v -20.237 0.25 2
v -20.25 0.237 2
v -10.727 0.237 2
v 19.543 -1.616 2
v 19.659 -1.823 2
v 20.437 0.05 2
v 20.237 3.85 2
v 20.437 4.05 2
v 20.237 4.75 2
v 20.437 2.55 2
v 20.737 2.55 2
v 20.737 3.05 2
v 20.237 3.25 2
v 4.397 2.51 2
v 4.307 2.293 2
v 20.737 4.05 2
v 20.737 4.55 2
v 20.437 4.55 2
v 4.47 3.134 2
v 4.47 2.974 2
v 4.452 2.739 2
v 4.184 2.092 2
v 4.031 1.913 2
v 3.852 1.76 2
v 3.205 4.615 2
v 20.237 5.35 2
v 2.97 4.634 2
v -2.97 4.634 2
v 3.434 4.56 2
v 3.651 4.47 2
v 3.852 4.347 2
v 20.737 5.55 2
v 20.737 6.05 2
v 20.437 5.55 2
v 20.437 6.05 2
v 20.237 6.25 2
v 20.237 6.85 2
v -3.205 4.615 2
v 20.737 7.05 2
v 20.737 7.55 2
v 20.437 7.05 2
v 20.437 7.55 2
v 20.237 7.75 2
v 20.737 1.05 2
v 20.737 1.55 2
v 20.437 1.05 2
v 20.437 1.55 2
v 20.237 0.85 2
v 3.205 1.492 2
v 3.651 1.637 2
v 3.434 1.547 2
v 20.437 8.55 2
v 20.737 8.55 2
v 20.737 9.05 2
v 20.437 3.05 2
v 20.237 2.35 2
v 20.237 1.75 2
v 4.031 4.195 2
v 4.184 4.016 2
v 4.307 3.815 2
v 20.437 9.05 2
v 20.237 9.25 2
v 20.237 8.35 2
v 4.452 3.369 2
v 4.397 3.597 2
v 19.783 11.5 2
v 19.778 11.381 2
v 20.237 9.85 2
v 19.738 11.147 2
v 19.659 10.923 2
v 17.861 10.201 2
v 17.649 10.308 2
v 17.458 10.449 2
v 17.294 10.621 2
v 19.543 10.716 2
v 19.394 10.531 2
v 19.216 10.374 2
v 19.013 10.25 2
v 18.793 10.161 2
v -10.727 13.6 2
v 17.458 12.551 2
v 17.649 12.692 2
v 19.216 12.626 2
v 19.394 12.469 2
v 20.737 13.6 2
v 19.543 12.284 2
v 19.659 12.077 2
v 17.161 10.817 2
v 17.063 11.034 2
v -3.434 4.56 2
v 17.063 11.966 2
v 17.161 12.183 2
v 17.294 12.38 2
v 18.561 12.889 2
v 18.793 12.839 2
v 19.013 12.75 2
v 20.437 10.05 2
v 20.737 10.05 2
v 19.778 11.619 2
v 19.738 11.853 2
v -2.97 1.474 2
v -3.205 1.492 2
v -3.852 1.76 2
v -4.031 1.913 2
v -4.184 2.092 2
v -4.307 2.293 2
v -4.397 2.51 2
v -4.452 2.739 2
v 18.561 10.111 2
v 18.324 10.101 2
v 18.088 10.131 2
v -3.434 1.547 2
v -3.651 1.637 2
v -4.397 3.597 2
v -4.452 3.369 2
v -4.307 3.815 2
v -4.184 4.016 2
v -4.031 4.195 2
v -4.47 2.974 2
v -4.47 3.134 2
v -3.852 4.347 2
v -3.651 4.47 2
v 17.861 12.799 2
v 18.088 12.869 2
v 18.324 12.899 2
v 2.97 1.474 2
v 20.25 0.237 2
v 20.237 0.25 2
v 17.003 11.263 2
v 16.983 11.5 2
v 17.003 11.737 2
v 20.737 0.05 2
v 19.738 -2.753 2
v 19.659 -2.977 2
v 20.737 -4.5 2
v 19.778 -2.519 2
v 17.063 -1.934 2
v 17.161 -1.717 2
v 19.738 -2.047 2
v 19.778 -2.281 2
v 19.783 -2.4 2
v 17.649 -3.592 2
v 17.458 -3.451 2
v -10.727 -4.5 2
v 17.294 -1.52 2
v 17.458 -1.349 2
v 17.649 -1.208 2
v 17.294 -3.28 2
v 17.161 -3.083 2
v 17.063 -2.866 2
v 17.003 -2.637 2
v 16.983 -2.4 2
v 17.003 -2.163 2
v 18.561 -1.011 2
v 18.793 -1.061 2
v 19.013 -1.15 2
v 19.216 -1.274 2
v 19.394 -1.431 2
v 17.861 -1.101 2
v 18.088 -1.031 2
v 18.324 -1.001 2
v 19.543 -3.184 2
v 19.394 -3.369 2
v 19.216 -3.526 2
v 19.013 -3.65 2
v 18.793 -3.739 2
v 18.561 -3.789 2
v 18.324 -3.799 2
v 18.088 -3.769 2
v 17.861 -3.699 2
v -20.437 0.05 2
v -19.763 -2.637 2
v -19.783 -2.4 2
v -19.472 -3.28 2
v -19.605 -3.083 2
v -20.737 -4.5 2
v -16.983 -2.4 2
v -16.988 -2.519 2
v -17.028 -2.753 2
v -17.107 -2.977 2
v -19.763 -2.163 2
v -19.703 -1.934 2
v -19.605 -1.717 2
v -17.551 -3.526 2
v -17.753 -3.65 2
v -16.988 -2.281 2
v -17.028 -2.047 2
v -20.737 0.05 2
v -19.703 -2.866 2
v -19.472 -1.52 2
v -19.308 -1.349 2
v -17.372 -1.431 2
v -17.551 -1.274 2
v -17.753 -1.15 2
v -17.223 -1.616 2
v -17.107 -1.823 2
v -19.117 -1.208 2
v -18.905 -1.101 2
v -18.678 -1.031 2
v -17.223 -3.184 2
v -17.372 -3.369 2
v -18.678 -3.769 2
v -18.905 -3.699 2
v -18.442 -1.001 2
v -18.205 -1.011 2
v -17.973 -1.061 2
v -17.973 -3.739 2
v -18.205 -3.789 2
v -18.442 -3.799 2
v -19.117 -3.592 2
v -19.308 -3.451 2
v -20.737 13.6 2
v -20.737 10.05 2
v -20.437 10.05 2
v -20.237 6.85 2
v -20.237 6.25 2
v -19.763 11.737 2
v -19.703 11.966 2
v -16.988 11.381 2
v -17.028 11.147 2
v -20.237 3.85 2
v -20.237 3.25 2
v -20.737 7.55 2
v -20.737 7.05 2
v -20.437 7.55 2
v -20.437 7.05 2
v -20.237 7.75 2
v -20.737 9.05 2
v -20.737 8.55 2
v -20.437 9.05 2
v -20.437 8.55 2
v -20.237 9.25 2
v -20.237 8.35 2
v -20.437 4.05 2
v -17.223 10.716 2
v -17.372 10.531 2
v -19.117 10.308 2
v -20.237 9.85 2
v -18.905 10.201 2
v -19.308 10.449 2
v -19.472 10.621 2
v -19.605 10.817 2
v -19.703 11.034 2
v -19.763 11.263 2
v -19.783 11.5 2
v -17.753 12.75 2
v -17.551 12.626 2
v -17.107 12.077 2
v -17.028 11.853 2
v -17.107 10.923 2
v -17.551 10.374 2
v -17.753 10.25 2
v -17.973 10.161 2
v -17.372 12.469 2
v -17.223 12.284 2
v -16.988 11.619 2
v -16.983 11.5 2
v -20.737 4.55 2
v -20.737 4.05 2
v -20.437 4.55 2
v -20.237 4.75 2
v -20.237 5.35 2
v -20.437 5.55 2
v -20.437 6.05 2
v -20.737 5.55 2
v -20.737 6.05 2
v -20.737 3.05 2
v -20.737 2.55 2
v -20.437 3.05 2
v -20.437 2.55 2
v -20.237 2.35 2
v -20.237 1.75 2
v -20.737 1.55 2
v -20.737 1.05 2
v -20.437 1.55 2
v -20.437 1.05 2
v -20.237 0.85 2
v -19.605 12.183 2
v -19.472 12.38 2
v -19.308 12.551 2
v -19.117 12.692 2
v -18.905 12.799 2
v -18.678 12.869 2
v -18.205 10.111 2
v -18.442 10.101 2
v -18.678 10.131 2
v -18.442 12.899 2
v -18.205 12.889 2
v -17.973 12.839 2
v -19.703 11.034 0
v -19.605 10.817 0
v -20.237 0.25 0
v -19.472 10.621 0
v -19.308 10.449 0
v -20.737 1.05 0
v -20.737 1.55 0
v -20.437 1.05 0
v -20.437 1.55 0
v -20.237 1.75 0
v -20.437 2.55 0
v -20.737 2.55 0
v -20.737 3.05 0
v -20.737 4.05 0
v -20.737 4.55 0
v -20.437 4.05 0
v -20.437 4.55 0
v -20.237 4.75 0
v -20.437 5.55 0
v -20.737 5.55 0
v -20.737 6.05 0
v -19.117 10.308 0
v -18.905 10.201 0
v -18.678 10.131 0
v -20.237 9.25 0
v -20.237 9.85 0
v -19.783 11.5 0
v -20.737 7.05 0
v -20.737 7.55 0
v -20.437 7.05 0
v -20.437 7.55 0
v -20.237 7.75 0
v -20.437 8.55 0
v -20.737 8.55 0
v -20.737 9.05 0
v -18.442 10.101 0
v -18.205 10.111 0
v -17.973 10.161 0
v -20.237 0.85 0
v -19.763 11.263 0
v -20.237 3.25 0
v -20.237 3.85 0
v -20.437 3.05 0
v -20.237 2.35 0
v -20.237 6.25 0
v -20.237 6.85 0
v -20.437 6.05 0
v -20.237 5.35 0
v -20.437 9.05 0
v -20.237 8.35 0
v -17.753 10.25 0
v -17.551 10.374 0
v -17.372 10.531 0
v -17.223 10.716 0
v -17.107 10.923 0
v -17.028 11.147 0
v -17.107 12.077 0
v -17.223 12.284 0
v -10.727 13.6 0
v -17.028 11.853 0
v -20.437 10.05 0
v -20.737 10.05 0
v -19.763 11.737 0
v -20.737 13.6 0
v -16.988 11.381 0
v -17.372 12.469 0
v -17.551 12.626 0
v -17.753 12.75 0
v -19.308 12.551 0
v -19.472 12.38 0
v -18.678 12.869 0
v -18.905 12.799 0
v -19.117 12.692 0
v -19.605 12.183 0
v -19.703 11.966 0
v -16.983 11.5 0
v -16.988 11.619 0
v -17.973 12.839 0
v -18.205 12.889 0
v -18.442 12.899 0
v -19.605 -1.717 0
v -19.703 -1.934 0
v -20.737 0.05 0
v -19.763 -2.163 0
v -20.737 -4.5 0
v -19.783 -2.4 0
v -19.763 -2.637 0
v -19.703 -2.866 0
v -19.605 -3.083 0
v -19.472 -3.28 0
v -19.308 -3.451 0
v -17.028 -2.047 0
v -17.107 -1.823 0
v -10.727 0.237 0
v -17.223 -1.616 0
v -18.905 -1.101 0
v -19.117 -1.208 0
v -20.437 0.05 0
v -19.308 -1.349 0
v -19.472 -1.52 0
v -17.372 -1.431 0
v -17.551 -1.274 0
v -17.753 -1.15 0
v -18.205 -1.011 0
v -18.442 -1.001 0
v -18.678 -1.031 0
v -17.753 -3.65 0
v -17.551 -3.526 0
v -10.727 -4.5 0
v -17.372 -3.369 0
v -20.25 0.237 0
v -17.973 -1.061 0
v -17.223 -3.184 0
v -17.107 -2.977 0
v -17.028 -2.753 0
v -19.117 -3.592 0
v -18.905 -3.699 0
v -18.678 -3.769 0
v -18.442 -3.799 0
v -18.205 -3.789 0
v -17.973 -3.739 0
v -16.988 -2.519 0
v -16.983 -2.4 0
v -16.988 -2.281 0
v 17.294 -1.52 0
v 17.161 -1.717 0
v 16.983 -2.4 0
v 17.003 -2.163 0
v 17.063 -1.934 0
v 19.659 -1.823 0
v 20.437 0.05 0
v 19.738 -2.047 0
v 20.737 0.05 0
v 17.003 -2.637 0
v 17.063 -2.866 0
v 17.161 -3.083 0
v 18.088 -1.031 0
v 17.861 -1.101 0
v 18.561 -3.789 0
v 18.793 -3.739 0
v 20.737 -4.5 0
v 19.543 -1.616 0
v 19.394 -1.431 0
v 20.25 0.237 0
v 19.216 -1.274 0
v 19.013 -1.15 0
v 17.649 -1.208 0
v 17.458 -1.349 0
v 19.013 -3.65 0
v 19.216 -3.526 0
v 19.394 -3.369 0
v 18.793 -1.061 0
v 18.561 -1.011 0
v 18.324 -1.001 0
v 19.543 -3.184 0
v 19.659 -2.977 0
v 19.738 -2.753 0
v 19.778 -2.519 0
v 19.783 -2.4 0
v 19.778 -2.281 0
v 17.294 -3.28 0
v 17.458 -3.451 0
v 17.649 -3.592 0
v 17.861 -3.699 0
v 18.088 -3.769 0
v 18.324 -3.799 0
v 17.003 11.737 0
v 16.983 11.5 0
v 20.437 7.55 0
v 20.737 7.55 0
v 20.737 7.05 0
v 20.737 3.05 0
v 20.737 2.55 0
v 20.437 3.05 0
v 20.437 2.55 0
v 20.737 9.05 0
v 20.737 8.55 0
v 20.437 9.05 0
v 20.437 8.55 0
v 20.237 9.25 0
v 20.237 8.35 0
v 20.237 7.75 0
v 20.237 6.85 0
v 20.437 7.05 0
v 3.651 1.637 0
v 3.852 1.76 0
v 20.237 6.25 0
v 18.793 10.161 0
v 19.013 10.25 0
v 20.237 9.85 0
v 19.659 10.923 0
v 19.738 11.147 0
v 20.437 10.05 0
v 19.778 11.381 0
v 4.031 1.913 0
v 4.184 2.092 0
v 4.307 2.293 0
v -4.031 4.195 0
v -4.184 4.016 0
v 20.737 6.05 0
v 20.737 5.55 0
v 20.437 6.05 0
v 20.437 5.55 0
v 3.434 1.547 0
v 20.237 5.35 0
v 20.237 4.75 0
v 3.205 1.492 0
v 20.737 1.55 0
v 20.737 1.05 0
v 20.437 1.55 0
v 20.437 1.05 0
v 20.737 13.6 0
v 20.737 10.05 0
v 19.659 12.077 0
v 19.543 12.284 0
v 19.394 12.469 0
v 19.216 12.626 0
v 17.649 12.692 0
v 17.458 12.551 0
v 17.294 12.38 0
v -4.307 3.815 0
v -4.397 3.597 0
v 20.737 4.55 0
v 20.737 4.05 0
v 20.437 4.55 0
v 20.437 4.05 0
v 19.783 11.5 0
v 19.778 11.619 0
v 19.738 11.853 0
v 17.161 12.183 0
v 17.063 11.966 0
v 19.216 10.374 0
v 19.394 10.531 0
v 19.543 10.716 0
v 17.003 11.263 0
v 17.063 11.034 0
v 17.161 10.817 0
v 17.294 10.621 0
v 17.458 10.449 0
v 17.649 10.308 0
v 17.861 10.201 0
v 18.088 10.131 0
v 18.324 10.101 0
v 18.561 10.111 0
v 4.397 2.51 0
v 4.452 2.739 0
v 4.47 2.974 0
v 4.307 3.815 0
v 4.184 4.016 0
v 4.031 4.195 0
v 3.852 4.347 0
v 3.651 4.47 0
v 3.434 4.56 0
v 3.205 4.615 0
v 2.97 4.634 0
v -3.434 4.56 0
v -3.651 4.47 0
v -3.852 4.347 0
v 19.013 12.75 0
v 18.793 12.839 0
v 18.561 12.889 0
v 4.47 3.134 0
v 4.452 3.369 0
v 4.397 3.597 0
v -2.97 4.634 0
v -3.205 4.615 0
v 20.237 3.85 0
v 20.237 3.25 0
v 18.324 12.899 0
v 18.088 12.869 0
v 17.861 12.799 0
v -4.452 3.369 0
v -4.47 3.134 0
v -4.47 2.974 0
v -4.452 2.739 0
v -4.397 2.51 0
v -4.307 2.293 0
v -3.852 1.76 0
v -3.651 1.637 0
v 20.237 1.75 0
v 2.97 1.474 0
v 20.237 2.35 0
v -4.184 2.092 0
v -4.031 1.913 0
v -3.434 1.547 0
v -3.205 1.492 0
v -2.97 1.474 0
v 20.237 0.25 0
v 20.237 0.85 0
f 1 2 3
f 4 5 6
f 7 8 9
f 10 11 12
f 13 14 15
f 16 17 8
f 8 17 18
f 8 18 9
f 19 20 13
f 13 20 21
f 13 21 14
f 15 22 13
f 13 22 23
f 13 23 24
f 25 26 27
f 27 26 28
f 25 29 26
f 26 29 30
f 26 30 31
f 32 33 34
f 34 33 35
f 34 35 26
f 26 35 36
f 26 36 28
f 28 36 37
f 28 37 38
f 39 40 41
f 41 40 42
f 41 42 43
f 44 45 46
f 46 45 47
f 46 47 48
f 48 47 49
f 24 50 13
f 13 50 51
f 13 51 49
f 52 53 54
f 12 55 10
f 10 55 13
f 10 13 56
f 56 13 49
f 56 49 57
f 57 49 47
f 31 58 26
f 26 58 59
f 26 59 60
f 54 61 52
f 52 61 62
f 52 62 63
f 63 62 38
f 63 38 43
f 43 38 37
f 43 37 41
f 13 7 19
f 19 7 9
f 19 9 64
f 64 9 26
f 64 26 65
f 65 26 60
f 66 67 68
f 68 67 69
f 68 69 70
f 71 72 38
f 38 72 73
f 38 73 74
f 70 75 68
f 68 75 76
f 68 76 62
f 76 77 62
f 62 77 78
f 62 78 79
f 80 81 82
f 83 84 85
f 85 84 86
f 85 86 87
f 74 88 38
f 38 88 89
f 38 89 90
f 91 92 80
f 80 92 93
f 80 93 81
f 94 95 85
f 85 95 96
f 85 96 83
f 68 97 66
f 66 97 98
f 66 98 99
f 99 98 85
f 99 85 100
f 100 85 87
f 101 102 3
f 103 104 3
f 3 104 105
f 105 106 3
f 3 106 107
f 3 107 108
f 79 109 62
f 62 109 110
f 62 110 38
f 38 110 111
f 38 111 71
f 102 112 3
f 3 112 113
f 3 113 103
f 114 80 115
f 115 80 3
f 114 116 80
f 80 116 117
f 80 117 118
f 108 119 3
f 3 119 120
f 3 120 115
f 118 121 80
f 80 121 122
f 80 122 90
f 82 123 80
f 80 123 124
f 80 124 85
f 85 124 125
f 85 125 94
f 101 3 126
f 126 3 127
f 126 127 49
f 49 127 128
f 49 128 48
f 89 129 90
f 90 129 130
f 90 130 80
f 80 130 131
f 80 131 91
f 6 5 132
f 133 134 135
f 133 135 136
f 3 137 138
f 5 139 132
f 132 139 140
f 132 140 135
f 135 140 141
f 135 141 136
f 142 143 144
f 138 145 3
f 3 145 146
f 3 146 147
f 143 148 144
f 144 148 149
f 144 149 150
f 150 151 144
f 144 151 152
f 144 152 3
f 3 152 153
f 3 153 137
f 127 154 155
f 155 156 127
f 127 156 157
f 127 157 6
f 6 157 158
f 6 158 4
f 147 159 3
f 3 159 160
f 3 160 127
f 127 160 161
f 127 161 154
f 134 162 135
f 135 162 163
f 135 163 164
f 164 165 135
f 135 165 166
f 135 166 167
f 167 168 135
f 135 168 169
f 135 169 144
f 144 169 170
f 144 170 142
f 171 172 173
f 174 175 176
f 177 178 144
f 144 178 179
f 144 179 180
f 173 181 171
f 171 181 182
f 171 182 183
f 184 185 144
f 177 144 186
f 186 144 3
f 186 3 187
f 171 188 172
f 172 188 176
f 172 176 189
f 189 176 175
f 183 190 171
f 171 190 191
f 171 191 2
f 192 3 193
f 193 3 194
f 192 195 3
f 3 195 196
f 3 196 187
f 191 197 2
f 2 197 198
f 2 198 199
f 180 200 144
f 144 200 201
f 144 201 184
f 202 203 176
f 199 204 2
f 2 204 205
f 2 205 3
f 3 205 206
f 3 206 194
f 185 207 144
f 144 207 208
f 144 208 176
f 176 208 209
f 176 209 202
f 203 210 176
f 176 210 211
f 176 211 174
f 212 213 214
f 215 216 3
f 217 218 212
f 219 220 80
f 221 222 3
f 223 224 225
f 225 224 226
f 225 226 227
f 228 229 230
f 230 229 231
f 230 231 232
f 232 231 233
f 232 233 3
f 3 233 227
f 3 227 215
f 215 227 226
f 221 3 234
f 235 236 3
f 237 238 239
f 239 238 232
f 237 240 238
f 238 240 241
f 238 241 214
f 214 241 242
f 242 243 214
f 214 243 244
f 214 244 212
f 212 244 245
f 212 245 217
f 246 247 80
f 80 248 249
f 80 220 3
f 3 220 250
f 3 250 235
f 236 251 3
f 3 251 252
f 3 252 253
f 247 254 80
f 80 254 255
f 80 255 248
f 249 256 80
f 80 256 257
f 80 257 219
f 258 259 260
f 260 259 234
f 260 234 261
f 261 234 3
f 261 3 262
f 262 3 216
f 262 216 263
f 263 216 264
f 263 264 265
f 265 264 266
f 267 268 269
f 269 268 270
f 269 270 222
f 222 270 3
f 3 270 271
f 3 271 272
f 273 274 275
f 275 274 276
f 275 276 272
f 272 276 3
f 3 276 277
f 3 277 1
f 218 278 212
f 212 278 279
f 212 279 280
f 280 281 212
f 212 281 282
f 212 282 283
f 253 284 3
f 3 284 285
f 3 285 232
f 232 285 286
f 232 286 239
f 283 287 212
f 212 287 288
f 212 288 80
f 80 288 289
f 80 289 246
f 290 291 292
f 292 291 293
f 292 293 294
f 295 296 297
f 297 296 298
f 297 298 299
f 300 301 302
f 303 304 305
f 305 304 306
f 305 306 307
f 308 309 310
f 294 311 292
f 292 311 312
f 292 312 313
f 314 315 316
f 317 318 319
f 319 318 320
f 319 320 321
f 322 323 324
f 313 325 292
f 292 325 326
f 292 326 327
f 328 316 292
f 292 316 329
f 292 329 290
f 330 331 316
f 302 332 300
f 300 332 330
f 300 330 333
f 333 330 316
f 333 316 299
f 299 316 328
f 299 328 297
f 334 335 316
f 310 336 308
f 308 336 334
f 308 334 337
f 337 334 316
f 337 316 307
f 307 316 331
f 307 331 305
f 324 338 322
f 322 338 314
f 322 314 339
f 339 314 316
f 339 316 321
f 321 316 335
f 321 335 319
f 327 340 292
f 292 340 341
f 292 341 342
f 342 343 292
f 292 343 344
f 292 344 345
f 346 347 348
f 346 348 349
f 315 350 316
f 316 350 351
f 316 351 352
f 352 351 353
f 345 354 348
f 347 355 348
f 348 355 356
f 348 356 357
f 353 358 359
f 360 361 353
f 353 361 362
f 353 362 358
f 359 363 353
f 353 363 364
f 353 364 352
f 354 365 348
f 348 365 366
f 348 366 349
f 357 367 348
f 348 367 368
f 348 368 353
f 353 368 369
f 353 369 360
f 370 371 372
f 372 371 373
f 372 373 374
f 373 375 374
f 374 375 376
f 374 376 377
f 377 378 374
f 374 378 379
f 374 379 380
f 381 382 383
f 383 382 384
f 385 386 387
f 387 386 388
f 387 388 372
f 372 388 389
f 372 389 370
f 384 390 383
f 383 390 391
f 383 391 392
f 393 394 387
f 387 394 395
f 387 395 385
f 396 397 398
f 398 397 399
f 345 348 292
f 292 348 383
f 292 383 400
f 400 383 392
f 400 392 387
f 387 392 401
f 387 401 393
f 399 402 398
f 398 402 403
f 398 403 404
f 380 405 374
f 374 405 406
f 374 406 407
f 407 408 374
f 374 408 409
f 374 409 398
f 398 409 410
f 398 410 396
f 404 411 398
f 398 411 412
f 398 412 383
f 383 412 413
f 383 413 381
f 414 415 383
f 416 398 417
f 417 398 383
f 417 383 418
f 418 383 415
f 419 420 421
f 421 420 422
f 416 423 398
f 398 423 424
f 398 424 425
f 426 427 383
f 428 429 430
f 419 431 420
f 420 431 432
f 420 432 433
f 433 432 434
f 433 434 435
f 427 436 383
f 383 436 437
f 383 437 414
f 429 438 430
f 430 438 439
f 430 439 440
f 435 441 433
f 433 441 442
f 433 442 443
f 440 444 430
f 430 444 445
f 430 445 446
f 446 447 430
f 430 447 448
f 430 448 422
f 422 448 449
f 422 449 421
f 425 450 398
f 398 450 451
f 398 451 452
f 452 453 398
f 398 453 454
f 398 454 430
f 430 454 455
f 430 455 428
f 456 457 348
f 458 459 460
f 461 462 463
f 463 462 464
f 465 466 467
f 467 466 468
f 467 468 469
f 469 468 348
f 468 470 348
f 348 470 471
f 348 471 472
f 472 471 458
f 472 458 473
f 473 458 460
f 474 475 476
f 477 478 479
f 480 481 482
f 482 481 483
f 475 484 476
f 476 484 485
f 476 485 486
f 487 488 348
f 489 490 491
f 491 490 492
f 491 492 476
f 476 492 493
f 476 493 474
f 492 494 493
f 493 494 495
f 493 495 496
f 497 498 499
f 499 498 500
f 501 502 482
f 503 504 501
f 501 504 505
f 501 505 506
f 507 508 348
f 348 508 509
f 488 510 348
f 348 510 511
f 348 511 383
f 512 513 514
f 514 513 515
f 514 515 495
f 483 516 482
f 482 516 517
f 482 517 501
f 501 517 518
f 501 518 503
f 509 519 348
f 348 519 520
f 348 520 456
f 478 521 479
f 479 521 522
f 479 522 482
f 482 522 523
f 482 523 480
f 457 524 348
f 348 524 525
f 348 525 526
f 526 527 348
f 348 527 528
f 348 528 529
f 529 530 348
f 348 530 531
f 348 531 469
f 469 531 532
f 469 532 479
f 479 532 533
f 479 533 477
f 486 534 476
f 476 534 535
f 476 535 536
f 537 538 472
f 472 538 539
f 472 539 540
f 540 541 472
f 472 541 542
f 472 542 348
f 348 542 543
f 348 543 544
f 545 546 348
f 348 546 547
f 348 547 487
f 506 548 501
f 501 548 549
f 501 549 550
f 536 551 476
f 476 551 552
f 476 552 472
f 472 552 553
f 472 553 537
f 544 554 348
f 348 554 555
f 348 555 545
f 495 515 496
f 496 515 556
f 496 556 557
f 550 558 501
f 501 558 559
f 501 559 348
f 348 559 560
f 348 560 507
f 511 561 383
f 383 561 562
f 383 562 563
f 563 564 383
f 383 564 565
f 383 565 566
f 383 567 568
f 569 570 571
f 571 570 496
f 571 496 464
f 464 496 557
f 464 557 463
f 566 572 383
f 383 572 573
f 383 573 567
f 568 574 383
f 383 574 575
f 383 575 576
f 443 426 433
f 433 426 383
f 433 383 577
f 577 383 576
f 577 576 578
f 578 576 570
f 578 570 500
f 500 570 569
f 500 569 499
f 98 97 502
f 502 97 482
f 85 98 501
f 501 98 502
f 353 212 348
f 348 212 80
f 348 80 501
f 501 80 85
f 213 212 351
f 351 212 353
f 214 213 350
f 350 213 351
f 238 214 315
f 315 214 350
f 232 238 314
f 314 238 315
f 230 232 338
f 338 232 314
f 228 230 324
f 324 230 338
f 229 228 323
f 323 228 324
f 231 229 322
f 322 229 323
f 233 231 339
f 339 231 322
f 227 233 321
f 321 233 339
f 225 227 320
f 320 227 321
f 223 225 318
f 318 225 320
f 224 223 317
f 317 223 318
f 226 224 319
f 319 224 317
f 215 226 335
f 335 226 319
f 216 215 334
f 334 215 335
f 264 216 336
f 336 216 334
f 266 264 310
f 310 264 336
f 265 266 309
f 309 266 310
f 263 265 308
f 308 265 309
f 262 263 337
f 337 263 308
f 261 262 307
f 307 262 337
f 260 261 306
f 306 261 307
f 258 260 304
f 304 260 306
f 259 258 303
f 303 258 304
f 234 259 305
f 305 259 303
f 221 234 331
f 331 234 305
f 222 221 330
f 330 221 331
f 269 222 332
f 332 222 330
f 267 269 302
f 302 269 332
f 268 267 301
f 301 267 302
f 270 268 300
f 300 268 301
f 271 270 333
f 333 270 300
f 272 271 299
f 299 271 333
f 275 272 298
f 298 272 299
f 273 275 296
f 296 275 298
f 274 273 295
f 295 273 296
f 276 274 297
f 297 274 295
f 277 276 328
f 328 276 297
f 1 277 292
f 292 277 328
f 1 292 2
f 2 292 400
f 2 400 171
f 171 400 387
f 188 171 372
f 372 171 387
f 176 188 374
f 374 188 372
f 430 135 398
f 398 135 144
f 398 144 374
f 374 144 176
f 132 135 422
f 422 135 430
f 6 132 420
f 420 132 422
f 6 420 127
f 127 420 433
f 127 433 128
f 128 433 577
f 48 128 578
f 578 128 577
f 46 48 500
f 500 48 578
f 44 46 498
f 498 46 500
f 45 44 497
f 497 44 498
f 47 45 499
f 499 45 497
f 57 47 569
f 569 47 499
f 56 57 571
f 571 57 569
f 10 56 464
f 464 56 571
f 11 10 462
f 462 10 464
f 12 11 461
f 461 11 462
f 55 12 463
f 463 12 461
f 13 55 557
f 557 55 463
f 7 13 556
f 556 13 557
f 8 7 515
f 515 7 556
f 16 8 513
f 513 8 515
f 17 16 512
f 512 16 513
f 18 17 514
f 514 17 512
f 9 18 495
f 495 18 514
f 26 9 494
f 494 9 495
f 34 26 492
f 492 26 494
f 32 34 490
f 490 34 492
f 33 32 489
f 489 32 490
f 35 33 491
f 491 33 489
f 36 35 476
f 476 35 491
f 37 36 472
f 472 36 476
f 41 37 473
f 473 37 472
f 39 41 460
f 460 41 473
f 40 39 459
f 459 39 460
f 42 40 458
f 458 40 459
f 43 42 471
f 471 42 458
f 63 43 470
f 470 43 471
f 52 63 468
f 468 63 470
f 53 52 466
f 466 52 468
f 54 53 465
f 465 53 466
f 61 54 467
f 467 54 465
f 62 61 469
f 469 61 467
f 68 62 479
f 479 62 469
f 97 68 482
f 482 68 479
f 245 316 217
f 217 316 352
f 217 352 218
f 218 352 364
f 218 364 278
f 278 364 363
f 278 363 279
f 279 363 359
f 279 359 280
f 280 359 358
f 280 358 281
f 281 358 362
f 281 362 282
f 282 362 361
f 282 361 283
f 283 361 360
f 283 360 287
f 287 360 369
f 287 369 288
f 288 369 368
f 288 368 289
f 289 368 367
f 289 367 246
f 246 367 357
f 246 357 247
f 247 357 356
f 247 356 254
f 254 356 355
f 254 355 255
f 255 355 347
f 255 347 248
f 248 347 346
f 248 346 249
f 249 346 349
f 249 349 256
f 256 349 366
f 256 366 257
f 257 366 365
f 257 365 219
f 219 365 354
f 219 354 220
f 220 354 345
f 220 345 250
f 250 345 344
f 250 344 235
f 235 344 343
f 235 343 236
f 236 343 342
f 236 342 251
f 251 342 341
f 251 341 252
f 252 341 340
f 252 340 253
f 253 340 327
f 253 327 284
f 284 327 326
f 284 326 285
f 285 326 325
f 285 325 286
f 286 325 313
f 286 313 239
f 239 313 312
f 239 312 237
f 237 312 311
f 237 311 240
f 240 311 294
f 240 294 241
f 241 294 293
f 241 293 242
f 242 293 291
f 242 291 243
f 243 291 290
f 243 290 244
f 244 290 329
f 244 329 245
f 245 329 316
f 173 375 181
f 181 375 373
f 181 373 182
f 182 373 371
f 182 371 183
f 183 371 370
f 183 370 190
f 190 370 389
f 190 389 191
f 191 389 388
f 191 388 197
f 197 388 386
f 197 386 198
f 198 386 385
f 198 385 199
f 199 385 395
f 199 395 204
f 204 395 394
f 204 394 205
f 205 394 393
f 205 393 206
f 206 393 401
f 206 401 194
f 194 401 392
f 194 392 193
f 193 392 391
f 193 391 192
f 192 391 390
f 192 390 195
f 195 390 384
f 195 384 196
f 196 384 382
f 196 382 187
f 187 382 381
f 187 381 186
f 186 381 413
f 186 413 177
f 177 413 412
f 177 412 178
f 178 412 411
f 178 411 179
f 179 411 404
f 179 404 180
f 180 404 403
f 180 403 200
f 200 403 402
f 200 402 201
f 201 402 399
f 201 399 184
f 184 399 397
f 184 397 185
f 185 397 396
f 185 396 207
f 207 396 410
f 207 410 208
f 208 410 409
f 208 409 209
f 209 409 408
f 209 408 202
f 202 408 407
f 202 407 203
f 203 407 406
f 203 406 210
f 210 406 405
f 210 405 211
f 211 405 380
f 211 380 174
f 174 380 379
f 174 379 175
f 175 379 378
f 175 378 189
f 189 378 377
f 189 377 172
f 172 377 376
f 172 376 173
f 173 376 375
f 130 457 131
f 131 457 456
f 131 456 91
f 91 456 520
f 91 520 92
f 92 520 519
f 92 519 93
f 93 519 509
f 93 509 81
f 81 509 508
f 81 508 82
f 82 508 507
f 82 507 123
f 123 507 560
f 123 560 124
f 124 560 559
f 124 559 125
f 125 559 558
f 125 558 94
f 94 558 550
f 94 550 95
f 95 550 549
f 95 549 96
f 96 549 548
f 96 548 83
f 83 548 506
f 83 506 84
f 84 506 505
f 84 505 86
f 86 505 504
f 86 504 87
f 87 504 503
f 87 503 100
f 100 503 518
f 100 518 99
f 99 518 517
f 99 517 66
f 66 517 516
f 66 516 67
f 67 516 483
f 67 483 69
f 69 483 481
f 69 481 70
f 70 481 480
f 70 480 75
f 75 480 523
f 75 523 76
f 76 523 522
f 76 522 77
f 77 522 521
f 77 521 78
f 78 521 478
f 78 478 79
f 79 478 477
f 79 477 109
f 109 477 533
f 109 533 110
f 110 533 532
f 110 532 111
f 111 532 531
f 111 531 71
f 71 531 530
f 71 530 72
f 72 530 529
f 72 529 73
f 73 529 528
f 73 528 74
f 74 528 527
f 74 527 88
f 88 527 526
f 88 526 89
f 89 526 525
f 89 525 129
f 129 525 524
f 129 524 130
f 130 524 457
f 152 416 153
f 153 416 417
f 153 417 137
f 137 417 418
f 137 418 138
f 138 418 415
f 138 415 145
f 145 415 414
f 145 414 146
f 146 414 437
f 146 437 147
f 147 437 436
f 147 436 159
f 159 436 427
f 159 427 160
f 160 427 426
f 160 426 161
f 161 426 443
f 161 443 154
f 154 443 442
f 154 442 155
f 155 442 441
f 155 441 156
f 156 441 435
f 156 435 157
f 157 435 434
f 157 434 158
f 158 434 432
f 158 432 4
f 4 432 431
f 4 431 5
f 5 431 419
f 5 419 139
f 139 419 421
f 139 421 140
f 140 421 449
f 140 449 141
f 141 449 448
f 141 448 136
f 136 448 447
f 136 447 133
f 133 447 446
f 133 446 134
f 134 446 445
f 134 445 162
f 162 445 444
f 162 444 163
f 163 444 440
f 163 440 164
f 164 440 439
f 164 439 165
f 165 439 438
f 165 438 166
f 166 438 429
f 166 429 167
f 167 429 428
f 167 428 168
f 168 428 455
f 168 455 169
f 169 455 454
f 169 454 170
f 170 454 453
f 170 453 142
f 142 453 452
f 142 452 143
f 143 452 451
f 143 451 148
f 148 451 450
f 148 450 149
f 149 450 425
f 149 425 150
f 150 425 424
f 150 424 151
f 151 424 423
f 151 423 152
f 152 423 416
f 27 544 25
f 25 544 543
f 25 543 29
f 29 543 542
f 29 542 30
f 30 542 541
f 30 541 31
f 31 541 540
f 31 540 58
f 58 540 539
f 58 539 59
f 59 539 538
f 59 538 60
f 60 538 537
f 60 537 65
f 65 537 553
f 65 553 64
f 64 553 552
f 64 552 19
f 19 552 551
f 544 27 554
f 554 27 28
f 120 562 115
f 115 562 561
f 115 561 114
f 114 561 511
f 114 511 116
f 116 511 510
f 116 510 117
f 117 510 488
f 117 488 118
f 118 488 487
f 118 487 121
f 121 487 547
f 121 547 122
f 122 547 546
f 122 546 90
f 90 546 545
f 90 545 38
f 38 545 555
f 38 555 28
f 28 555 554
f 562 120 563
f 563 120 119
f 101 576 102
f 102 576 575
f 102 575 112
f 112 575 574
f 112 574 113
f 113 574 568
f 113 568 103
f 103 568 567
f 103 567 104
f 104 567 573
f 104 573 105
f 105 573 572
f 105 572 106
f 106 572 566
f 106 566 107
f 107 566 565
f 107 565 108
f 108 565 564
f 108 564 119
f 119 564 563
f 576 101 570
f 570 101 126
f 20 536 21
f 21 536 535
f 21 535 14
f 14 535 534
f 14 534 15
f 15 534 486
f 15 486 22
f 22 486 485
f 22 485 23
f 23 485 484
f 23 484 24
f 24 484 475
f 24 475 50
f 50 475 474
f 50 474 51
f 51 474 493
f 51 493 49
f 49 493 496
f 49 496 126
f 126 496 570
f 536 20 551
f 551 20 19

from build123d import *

# Parameters (mm, degrees)
SKETCH_1_R          = 1.4
EXTRUDE_2_DEPTH     = 2
CUT_EXTRUDE_1_REACH = 26.88


with BuildPart() as part:
    # 草图1 → 凸台-拉伸2 (new body)
    with BuildSketch(Plane.XY):
        Polygon((20.737338075, 10.050011688), (20.737338075, 13.600023376), (-20.737338075, 13.600023376), (-20.737338075, 10.050011688), (-20.437338075, 10.050011688), (-20.237338075, 9.850011688), (-20.237338075, 9.250011688), (-20.437338075, 9.050011688), (-20.737338075, 9.050011688), (-20.737338075, 8.550011688), (-20.437338075, 8.550011688), (-20.237338075, 8.350011688), (-20.237338075, 7.750011688), (-20.437338075, 7.550011688), (-20.737338075, 7.550011688), (-20.737338075, 7.050011688), (-20.437338075, 7.050011688), (-20.237338075, 6.850011688), (-20.237338075, 6.250011688), (-20.437338075, 6.050011688), (-20.737338075, 6.050011688), (-20.737338075, 5.550011688), (-20.437338075, 5.550011688), (-20.237338075, 5.350011688), (-20.237338075, 4.750011688), (-20.437338075, 4.550011688), (-20.737338075, 4.550011688), (-20.737338075, 4.050011688), (-20.437338075, 4.050011688), (-20.237338075, 3.850011688), (-20.237338075, 3.250011688), (-20.437338075, 3.050011688), (-20.737338075, 3.050011688), (-20.737338075, 2.550011688), (-20.437338075, 2.550011688), (-20.237338075, 2.350011688), (-20.237338075, 1.750011688), (-20.437338075, 1.550011688), (-20.737338075, 1.550011688), (-20.737338075, 1.050011688), (-20.437338075, 1.050011688), (-20.237338075, 0.850011688), (-20.237338075, 0.250011688), (-20.437338075, 0.050011688), (-20.737338075, 0.050011688), (-20.737338075, -4.5), (20.737338075, -4.5), (20.737338075, 0.050011688), (20.437338075, 0.050011688), (20.237338075, 0.250011688), (20.237338075, 0.850011688), (20.437338075, 1.050011688), (20.737338075, 1.050011688), (20.737338075, 1.550011688), (20.437338075, 1.550011688), (20.237338075, 1.750011688), (20.237338075, 2.350011688), (20.437338075, 2.550011688), (20.737338075, 2.550011688), (20.737338075, 3.050011688), (20.437338075, 3.050011688), (20.237338075, 3.250011688), (20.237338075, 3.850011688), (20.437338075, 4.050011688), (20.737338075, 4.050011688), (20.737338075, 4.550011688), (20.437338075, 4.550011688), (20.237338075, 4.750011688), (20.237338075, 5.350011688), (20.437338075, 5.550011688), (20.737338075, 5.550011688), (20.737338075, 6.050011688), (20.437338075, 6.050011688), (20.237338075, 6.250011688), (20.237338075, 6.850011688), (20.437338075, 7.050011688), (20.737338075, 7.050011688), (20.737338075, 7.550011688), (20.437338075, 7.550011688), (20.237338075, 7.750011688), (20.237338075, 8.350011688), (20.437338075, 8.550011688), (20.737338075, 8.550011688), (20.737338075, 9.050011688), (20.437338075, 9.050011688), (20.237338075, 9.250011688), (20.237338075, 9.850011688), (20.437338075, 10.050011688), align=None)
        with Locations((-18.383061341, 11.500023376)):
            Circle(SKETCH_1_R, mode=Mode.SUBTRACT)
        with Locations((-18.383061341, -2.4)):
            Circle(SKETCH_1_R, mode=Mode.SUBTRACT)
        with Locations((18.383061341, -2.4)):
            Circle(SKETCH_1_R, mode=Mode.SUBTRACT)
        with Locations((18.383061341, 11.500023376)):
            Circle(SKETCH_1_R, mode=Mode.SUBTRACT)
    extrude(amount=EXTRUDE_2_DEPTH)

    # 草图2 → 切除-拉伸1 (cut, up to next)
    with BuildSketch(Plane(origin=(0, 0, 0), x_dir=(-1, 0, 0), z_dir=(0, 0, -1)), mode=Mode.PRIVATE) as cut_extrude_1_sk1:
        with BuildLine():
            Line((2.97, 4.63388738), (-2.97, 4.63388738))
            ThreePointArc((-2.97, 4.63388738), (-4.030660172, 4.194547552), (-4.47, 3.13388738))
            Line((-4.47, 3.13388738), (-4.47, 2.97388738))
            ThreePointArc((-4.47, 2.97388738), (-4.030660172, 1.913227209), (-2.97, 1.47388738))
            Line((-2.97, 1.47388738), (-0.05, 1.47388738))
            Line((-0.05, 1.47388738), (2.97, 1.47388738))
            ThreePointArc((2.97, 1.47388738), (4.030660172, 1.913227209), (4.47, 2.97388738))
            Line((4.47, 2.97388738), (4.47, 3.13388738))
            ThreePointArc((4.47, 3.13388738), (4.030660172, 4.194547552), (2.97, 4.63388738))
        make_face()
    cut_extrude_1_tool1 = extrude(cut_extrude_1_sk1.sketch, amount=-CUT_EXTRUDE_1_REACH, mode=Mode.PRIVATE) & part.part
    add(cut_extrude_1_tool1.solids().sort_by_distance((0, 3.053887, 0))[0], mode=Mode.SUBTRACT)


solid = part.part
